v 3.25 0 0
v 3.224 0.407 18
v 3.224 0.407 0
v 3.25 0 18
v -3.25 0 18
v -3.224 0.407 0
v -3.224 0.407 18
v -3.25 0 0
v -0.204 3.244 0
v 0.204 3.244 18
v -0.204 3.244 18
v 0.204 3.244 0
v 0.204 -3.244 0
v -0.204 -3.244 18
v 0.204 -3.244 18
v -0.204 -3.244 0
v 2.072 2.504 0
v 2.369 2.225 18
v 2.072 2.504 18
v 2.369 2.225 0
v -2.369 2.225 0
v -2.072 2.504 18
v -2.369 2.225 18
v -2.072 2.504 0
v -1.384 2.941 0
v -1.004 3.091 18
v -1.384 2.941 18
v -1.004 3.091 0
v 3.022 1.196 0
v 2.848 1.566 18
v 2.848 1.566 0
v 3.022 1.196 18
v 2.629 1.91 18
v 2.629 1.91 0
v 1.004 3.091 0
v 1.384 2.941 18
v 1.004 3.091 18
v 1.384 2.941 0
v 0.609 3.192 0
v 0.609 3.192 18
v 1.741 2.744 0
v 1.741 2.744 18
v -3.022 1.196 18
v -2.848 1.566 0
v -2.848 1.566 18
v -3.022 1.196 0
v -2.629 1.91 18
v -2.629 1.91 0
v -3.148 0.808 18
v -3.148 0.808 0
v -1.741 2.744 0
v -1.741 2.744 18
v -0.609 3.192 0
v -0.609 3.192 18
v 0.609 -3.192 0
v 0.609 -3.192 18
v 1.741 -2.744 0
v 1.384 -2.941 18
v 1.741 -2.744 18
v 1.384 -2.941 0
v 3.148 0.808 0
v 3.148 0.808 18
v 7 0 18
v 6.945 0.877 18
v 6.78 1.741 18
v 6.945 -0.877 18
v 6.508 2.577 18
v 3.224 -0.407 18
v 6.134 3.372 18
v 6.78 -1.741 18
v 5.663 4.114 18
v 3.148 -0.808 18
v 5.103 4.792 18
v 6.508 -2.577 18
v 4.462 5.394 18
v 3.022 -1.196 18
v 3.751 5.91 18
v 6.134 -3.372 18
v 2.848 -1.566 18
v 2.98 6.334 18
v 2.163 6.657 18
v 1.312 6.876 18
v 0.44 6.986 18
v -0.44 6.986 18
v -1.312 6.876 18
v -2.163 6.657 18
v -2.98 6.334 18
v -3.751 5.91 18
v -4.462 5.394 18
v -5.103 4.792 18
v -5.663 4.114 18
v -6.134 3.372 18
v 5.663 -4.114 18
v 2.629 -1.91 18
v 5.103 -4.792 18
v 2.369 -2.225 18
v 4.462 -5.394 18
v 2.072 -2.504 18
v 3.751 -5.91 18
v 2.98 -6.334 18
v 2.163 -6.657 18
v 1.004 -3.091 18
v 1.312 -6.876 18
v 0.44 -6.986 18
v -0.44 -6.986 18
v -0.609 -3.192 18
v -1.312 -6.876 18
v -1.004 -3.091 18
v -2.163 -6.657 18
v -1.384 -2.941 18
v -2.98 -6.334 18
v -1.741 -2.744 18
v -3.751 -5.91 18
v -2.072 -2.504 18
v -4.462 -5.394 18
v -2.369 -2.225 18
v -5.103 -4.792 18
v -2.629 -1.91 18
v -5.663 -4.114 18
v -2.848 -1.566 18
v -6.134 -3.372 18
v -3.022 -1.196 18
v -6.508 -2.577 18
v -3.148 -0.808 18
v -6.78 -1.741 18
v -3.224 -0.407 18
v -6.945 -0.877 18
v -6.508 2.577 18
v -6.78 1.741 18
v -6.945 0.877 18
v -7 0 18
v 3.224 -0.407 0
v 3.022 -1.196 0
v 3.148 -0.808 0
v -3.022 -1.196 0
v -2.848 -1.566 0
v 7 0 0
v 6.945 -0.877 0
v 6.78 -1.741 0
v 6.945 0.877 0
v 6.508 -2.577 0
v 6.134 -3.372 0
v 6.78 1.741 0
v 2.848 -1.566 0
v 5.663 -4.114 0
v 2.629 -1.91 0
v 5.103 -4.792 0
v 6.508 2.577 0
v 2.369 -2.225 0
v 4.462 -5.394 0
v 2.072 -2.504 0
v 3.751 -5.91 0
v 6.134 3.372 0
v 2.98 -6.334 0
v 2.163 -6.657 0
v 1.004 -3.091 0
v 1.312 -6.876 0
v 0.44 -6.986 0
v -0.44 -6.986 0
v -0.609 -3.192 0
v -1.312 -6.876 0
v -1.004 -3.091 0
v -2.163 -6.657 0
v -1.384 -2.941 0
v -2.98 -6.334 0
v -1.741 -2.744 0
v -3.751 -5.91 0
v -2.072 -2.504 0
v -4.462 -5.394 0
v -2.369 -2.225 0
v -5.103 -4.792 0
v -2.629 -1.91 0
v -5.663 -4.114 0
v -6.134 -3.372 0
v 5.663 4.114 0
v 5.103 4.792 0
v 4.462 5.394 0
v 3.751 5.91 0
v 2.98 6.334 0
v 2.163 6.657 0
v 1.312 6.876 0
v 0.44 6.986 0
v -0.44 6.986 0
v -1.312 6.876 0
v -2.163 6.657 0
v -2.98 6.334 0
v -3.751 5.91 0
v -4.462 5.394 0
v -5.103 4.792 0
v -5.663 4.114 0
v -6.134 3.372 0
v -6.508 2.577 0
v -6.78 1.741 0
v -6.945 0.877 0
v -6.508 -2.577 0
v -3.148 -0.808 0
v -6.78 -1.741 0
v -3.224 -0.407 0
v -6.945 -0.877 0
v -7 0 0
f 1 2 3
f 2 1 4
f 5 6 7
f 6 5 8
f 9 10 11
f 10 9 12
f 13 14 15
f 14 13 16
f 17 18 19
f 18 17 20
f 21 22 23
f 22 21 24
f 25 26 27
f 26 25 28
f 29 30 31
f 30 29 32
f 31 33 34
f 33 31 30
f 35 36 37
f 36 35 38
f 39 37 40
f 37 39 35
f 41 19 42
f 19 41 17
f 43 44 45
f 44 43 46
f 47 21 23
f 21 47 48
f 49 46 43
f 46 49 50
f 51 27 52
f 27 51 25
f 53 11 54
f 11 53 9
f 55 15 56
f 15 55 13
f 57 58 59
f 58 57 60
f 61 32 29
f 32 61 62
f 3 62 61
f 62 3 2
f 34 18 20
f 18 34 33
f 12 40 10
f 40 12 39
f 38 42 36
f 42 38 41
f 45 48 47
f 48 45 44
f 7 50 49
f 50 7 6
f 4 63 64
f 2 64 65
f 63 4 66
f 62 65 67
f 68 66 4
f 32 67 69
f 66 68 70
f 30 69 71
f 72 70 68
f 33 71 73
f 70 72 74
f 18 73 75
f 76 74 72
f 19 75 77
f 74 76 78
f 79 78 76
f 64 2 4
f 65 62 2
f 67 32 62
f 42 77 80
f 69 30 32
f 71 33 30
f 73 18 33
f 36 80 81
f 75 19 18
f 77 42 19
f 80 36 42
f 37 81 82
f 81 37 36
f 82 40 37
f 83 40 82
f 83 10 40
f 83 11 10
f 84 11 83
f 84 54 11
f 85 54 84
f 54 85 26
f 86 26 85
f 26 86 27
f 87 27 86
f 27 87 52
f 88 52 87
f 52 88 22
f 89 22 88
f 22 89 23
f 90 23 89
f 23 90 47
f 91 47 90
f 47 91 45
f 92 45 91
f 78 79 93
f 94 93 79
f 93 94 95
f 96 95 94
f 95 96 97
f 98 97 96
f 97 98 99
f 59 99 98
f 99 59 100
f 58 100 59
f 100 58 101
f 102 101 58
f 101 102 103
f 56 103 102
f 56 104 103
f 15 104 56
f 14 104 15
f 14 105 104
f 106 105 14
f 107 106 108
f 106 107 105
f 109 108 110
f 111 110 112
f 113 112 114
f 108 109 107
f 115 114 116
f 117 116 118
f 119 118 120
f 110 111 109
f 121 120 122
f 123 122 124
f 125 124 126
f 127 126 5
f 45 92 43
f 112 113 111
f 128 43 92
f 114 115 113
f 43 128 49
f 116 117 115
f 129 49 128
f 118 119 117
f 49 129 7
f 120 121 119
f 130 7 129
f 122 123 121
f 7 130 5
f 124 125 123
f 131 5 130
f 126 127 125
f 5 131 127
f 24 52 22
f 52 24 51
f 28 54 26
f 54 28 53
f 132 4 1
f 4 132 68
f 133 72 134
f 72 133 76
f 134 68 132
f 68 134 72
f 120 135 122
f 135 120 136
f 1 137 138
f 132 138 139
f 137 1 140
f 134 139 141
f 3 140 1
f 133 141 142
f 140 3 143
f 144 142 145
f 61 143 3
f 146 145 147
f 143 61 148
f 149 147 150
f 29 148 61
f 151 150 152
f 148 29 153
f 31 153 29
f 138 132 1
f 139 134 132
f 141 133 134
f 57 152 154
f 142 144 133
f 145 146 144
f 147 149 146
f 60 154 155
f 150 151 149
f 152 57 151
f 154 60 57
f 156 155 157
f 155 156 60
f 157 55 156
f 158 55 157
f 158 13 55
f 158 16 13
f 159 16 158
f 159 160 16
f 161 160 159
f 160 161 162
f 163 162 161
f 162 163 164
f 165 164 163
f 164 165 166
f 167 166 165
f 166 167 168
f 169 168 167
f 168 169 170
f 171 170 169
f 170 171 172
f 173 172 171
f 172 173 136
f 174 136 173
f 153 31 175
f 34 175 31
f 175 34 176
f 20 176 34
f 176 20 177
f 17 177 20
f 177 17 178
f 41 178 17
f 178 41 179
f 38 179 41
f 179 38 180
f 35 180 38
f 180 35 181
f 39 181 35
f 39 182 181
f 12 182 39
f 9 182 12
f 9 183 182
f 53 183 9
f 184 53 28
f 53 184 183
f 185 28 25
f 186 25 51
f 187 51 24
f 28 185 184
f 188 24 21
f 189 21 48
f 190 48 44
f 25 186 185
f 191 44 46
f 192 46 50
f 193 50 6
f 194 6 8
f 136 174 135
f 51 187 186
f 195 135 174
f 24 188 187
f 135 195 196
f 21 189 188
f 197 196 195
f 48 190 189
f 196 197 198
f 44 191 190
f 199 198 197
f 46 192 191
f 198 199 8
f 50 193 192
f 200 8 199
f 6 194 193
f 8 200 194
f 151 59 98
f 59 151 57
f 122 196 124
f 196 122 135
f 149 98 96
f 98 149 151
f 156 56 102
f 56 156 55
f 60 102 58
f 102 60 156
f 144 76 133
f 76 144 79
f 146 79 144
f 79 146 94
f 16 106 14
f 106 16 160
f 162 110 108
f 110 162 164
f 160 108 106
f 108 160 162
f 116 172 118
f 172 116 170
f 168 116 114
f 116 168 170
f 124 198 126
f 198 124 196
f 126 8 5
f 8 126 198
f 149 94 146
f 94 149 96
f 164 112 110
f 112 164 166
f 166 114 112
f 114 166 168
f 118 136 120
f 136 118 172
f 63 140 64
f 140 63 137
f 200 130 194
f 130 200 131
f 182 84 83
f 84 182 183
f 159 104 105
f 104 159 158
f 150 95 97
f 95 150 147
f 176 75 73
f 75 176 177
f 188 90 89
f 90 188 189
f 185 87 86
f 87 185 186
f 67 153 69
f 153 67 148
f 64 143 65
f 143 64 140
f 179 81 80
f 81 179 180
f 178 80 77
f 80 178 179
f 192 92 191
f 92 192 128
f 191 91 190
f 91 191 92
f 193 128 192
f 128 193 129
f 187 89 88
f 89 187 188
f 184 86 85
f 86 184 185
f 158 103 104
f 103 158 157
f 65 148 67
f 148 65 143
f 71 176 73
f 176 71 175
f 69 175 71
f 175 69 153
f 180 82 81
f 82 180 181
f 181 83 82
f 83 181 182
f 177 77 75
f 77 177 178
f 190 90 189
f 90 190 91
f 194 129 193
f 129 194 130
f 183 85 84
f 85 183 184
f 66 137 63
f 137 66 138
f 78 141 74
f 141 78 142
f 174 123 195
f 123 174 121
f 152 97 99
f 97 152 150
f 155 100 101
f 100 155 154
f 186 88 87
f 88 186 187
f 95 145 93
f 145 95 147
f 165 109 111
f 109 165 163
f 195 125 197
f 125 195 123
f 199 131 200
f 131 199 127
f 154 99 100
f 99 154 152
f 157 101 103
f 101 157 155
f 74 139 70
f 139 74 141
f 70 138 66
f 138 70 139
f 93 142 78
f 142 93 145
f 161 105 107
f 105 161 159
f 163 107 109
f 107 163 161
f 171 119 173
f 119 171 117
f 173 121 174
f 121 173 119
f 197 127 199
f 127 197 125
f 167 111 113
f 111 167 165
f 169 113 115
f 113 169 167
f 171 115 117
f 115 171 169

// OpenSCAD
$fn = 50;


difference() {
	union() {
		cylinder(h = 18, r = 7.0000000000);
	}
	union() {
		translate(v = [0, 0, -100]) {
			cylinder(h = 200, r = 3.2500000000);
		}
	}
}
